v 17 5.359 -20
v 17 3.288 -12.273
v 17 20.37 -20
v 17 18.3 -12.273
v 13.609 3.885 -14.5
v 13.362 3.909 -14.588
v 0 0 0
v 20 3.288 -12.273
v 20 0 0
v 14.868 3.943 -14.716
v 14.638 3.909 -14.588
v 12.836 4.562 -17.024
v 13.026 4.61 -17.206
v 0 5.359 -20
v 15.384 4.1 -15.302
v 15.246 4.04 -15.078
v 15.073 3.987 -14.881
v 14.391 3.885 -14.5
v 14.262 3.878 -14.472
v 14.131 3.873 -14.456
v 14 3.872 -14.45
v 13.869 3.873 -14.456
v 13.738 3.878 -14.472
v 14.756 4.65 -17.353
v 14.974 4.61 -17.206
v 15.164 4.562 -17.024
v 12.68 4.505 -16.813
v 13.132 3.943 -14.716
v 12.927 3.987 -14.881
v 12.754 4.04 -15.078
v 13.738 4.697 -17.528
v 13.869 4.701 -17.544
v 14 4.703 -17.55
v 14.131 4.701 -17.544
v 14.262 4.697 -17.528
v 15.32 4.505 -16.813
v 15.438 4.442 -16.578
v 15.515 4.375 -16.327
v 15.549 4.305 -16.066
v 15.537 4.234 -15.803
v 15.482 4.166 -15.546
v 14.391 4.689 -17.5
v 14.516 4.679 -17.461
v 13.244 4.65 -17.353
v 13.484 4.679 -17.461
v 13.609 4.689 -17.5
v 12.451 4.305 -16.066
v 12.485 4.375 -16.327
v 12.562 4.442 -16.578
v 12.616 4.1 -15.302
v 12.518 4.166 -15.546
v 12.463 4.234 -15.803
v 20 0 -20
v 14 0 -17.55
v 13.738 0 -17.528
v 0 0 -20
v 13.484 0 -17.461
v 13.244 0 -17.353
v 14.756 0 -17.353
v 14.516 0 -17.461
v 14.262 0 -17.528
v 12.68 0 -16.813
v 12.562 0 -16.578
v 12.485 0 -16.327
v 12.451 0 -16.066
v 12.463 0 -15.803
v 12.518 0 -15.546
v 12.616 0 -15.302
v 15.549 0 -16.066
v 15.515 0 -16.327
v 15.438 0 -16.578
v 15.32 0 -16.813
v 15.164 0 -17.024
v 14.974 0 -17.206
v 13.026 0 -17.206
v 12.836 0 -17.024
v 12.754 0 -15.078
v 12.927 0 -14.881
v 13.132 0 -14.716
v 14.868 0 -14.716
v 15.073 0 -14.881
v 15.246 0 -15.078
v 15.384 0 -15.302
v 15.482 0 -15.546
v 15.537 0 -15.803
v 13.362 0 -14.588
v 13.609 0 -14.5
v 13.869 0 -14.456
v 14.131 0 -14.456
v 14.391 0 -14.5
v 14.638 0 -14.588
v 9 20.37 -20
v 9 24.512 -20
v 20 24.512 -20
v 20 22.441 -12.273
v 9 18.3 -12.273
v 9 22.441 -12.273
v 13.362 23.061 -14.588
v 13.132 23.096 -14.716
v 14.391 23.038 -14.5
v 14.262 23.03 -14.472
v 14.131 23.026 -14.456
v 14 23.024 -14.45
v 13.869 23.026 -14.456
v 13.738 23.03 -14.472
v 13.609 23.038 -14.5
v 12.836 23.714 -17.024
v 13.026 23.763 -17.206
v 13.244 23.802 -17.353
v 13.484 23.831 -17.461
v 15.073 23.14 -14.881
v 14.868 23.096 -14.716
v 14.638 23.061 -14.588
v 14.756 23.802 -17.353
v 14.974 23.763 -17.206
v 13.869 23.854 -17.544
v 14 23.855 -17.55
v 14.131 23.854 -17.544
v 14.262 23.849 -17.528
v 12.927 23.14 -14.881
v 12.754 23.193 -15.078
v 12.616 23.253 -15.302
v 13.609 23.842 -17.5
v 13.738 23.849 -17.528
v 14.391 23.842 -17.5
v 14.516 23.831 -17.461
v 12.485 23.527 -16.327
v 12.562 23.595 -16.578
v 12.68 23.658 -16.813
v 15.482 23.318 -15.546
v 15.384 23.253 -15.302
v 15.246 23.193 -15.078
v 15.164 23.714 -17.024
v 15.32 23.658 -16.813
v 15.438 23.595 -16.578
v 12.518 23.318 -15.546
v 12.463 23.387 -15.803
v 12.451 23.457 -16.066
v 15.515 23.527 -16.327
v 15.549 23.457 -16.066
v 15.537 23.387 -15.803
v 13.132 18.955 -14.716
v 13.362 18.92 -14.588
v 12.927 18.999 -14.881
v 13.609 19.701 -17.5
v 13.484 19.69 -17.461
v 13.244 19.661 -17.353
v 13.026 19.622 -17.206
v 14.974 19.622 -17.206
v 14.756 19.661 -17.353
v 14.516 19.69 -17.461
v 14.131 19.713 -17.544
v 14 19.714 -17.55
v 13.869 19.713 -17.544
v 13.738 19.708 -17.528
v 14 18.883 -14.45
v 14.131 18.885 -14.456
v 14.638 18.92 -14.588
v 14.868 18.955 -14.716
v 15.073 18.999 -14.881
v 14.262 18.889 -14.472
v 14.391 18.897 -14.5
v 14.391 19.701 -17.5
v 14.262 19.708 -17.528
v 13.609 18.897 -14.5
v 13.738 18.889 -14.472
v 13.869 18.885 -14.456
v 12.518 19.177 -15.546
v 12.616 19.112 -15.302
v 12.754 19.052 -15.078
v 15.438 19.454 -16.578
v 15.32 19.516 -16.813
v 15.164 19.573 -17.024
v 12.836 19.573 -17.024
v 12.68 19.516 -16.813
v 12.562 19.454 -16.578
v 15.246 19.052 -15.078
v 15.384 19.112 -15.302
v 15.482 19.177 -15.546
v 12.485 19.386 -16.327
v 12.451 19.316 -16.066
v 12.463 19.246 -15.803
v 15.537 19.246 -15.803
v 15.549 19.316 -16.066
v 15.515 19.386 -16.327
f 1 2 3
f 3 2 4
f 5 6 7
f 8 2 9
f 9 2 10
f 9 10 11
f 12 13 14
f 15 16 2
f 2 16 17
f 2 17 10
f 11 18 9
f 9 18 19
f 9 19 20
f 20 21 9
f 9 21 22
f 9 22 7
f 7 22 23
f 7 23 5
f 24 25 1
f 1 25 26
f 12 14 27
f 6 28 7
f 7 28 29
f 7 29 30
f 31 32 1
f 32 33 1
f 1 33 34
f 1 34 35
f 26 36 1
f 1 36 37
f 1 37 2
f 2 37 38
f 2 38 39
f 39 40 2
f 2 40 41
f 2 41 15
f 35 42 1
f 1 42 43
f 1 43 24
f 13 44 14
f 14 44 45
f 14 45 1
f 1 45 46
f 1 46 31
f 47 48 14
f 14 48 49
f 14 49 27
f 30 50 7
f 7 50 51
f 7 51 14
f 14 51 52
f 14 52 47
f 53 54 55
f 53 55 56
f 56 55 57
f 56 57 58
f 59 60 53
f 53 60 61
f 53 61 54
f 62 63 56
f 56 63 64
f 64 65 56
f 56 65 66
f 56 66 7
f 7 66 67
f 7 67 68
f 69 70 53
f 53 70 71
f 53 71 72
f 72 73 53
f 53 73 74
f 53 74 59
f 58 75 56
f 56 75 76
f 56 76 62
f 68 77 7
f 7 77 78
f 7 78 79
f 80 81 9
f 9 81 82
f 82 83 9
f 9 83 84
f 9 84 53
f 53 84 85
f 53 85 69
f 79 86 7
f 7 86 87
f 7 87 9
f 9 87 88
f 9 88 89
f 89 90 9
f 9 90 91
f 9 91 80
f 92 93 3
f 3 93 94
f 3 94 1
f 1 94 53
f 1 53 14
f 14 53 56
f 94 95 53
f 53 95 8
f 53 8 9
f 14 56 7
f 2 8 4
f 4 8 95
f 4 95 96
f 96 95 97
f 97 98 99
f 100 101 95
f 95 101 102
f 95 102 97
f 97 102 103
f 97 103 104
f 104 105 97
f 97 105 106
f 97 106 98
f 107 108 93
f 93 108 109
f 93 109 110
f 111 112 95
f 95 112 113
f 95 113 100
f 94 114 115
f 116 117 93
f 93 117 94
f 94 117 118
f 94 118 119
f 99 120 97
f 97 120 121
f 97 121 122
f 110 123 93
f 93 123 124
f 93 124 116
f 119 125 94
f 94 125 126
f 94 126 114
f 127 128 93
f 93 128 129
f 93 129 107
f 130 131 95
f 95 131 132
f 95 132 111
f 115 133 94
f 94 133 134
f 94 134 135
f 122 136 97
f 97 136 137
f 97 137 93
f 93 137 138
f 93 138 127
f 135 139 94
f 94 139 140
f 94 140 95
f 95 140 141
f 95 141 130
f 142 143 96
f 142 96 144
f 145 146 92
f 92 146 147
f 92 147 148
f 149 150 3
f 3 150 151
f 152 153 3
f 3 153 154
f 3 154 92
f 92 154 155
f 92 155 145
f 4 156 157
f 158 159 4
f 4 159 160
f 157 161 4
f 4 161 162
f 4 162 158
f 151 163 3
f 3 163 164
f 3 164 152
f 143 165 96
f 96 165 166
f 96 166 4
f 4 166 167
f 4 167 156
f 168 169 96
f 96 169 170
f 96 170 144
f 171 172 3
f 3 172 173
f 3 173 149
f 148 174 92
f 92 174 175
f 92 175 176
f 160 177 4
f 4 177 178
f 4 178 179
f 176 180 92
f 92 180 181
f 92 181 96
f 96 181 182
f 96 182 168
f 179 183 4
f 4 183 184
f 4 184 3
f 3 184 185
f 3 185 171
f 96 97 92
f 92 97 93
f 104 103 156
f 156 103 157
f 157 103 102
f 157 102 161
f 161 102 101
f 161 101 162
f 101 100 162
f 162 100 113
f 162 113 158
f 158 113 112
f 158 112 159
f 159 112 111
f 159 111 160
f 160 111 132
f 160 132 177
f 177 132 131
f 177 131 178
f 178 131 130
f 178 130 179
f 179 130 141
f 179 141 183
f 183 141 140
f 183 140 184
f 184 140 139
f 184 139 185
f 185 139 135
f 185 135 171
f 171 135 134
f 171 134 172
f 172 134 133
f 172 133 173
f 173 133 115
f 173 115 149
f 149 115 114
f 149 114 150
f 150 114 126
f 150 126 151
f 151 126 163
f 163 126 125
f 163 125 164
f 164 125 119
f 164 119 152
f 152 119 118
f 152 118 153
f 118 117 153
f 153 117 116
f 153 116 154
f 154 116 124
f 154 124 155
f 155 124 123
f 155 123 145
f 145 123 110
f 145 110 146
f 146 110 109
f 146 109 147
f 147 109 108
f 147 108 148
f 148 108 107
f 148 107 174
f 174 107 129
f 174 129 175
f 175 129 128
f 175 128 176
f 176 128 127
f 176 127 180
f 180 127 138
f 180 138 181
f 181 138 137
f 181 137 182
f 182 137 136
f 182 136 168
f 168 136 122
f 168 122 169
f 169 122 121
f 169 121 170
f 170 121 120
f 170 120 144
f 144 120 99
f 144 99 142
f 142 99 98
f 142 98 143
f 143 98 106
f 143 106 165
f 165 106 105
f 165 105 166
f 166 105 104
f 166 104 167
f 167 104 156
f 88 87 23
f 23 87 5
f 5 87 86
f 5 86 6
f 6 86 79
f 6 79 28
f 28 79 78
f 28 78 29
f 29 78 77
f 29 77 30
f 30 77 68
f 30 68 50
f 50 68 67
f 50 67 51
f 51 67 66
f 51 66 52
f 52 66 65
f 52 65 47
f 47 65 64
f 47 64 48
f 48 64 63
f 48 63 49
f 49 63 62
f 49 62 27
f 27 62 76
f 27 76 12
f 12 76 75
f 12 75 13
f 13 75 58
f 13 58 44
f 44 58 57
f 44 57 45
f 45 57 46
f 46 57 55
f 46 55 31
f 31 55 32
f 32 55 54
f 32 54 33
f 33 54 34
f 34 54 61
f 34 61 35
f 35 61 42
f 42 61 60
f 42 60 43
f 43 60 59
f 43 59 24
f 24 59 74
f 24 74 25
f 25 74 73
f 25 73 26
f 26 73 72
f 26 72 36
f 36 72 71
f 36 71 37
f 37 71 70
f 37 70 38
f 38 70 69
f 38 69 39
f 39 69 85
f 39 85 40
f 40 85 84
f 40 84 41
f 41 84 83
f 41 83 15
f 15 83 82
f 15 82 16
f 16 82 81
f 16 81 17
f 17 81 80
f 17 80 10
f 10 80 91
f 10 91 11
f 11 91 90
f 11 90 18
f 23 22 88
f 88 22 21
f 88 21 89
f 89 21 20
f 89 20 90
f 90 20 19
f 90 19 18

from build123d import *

# Parameters (mm, degrees)
EXTRUDE_3_DEPTH     = 20
EXTRUDE_START       = -3
EXTRUDE_4_DEPTH     = 3
EXTRUDE_7_DEPTH     = 8
SKETCH_13_R         = 1.55
CUT_EXTRUDE_2_DEPTH = 30


# Read off the part's stored shape, not the designer's step: 凸台-拉伸4
with BuildPart() as part:
    # 草图3 → 凸台-拉伸3 (new body)
    with BuildSketch(Plane(origin=(0, 0, 0), x_dir=(0, 0, -1), z_dir=(1, 0, 0))):
        Polygon((0, 0), (20, 0), (20, 5.358983849), align=None)
    extrude(amount=EXTRUDE_3_DEPTH)

    # 凸台-拉伸4 outline → 凸台-拉伸4 (add)
    with BuildSketch(Plane(origin=(20, 0, 0), x_dir=(0, 0, -1), z_dir=(1, 0, 0)).offset(EXTRUDE_START)):
        Polygon((20, 5.358983849), (20, 24.511593186), (12.27259339, 22.441040825), (12.27259339, 3.288431488), align=None)
    extrude(amount=EXTRUDE_4_DEPTH)

    # 草图9 → 凸台-拉伸7 (add)
    with BuildSketch(Plane.ZY.offset(-17)):
        Polygon((-20, 24.511593186), (-12.27259339, 22.441040825), (-12.27259339, 18.299936104), (-20, 20.370488465), align=None)
    extrude(amount=EXTRUDE_7_DEPTH)

    # 草图13 → 切除-拉伸2 (cut)
    with BuildSketch(Plane.XZ):
        with Locations(Location((14, -16, 0), (0, 0, 90))):
            Circle(SKETCH_13_R)
    extrude(amount=-CUT_EXTRUDE_2_DEPTH, mode=Mode.SUBTRACT)


solid = part.part
